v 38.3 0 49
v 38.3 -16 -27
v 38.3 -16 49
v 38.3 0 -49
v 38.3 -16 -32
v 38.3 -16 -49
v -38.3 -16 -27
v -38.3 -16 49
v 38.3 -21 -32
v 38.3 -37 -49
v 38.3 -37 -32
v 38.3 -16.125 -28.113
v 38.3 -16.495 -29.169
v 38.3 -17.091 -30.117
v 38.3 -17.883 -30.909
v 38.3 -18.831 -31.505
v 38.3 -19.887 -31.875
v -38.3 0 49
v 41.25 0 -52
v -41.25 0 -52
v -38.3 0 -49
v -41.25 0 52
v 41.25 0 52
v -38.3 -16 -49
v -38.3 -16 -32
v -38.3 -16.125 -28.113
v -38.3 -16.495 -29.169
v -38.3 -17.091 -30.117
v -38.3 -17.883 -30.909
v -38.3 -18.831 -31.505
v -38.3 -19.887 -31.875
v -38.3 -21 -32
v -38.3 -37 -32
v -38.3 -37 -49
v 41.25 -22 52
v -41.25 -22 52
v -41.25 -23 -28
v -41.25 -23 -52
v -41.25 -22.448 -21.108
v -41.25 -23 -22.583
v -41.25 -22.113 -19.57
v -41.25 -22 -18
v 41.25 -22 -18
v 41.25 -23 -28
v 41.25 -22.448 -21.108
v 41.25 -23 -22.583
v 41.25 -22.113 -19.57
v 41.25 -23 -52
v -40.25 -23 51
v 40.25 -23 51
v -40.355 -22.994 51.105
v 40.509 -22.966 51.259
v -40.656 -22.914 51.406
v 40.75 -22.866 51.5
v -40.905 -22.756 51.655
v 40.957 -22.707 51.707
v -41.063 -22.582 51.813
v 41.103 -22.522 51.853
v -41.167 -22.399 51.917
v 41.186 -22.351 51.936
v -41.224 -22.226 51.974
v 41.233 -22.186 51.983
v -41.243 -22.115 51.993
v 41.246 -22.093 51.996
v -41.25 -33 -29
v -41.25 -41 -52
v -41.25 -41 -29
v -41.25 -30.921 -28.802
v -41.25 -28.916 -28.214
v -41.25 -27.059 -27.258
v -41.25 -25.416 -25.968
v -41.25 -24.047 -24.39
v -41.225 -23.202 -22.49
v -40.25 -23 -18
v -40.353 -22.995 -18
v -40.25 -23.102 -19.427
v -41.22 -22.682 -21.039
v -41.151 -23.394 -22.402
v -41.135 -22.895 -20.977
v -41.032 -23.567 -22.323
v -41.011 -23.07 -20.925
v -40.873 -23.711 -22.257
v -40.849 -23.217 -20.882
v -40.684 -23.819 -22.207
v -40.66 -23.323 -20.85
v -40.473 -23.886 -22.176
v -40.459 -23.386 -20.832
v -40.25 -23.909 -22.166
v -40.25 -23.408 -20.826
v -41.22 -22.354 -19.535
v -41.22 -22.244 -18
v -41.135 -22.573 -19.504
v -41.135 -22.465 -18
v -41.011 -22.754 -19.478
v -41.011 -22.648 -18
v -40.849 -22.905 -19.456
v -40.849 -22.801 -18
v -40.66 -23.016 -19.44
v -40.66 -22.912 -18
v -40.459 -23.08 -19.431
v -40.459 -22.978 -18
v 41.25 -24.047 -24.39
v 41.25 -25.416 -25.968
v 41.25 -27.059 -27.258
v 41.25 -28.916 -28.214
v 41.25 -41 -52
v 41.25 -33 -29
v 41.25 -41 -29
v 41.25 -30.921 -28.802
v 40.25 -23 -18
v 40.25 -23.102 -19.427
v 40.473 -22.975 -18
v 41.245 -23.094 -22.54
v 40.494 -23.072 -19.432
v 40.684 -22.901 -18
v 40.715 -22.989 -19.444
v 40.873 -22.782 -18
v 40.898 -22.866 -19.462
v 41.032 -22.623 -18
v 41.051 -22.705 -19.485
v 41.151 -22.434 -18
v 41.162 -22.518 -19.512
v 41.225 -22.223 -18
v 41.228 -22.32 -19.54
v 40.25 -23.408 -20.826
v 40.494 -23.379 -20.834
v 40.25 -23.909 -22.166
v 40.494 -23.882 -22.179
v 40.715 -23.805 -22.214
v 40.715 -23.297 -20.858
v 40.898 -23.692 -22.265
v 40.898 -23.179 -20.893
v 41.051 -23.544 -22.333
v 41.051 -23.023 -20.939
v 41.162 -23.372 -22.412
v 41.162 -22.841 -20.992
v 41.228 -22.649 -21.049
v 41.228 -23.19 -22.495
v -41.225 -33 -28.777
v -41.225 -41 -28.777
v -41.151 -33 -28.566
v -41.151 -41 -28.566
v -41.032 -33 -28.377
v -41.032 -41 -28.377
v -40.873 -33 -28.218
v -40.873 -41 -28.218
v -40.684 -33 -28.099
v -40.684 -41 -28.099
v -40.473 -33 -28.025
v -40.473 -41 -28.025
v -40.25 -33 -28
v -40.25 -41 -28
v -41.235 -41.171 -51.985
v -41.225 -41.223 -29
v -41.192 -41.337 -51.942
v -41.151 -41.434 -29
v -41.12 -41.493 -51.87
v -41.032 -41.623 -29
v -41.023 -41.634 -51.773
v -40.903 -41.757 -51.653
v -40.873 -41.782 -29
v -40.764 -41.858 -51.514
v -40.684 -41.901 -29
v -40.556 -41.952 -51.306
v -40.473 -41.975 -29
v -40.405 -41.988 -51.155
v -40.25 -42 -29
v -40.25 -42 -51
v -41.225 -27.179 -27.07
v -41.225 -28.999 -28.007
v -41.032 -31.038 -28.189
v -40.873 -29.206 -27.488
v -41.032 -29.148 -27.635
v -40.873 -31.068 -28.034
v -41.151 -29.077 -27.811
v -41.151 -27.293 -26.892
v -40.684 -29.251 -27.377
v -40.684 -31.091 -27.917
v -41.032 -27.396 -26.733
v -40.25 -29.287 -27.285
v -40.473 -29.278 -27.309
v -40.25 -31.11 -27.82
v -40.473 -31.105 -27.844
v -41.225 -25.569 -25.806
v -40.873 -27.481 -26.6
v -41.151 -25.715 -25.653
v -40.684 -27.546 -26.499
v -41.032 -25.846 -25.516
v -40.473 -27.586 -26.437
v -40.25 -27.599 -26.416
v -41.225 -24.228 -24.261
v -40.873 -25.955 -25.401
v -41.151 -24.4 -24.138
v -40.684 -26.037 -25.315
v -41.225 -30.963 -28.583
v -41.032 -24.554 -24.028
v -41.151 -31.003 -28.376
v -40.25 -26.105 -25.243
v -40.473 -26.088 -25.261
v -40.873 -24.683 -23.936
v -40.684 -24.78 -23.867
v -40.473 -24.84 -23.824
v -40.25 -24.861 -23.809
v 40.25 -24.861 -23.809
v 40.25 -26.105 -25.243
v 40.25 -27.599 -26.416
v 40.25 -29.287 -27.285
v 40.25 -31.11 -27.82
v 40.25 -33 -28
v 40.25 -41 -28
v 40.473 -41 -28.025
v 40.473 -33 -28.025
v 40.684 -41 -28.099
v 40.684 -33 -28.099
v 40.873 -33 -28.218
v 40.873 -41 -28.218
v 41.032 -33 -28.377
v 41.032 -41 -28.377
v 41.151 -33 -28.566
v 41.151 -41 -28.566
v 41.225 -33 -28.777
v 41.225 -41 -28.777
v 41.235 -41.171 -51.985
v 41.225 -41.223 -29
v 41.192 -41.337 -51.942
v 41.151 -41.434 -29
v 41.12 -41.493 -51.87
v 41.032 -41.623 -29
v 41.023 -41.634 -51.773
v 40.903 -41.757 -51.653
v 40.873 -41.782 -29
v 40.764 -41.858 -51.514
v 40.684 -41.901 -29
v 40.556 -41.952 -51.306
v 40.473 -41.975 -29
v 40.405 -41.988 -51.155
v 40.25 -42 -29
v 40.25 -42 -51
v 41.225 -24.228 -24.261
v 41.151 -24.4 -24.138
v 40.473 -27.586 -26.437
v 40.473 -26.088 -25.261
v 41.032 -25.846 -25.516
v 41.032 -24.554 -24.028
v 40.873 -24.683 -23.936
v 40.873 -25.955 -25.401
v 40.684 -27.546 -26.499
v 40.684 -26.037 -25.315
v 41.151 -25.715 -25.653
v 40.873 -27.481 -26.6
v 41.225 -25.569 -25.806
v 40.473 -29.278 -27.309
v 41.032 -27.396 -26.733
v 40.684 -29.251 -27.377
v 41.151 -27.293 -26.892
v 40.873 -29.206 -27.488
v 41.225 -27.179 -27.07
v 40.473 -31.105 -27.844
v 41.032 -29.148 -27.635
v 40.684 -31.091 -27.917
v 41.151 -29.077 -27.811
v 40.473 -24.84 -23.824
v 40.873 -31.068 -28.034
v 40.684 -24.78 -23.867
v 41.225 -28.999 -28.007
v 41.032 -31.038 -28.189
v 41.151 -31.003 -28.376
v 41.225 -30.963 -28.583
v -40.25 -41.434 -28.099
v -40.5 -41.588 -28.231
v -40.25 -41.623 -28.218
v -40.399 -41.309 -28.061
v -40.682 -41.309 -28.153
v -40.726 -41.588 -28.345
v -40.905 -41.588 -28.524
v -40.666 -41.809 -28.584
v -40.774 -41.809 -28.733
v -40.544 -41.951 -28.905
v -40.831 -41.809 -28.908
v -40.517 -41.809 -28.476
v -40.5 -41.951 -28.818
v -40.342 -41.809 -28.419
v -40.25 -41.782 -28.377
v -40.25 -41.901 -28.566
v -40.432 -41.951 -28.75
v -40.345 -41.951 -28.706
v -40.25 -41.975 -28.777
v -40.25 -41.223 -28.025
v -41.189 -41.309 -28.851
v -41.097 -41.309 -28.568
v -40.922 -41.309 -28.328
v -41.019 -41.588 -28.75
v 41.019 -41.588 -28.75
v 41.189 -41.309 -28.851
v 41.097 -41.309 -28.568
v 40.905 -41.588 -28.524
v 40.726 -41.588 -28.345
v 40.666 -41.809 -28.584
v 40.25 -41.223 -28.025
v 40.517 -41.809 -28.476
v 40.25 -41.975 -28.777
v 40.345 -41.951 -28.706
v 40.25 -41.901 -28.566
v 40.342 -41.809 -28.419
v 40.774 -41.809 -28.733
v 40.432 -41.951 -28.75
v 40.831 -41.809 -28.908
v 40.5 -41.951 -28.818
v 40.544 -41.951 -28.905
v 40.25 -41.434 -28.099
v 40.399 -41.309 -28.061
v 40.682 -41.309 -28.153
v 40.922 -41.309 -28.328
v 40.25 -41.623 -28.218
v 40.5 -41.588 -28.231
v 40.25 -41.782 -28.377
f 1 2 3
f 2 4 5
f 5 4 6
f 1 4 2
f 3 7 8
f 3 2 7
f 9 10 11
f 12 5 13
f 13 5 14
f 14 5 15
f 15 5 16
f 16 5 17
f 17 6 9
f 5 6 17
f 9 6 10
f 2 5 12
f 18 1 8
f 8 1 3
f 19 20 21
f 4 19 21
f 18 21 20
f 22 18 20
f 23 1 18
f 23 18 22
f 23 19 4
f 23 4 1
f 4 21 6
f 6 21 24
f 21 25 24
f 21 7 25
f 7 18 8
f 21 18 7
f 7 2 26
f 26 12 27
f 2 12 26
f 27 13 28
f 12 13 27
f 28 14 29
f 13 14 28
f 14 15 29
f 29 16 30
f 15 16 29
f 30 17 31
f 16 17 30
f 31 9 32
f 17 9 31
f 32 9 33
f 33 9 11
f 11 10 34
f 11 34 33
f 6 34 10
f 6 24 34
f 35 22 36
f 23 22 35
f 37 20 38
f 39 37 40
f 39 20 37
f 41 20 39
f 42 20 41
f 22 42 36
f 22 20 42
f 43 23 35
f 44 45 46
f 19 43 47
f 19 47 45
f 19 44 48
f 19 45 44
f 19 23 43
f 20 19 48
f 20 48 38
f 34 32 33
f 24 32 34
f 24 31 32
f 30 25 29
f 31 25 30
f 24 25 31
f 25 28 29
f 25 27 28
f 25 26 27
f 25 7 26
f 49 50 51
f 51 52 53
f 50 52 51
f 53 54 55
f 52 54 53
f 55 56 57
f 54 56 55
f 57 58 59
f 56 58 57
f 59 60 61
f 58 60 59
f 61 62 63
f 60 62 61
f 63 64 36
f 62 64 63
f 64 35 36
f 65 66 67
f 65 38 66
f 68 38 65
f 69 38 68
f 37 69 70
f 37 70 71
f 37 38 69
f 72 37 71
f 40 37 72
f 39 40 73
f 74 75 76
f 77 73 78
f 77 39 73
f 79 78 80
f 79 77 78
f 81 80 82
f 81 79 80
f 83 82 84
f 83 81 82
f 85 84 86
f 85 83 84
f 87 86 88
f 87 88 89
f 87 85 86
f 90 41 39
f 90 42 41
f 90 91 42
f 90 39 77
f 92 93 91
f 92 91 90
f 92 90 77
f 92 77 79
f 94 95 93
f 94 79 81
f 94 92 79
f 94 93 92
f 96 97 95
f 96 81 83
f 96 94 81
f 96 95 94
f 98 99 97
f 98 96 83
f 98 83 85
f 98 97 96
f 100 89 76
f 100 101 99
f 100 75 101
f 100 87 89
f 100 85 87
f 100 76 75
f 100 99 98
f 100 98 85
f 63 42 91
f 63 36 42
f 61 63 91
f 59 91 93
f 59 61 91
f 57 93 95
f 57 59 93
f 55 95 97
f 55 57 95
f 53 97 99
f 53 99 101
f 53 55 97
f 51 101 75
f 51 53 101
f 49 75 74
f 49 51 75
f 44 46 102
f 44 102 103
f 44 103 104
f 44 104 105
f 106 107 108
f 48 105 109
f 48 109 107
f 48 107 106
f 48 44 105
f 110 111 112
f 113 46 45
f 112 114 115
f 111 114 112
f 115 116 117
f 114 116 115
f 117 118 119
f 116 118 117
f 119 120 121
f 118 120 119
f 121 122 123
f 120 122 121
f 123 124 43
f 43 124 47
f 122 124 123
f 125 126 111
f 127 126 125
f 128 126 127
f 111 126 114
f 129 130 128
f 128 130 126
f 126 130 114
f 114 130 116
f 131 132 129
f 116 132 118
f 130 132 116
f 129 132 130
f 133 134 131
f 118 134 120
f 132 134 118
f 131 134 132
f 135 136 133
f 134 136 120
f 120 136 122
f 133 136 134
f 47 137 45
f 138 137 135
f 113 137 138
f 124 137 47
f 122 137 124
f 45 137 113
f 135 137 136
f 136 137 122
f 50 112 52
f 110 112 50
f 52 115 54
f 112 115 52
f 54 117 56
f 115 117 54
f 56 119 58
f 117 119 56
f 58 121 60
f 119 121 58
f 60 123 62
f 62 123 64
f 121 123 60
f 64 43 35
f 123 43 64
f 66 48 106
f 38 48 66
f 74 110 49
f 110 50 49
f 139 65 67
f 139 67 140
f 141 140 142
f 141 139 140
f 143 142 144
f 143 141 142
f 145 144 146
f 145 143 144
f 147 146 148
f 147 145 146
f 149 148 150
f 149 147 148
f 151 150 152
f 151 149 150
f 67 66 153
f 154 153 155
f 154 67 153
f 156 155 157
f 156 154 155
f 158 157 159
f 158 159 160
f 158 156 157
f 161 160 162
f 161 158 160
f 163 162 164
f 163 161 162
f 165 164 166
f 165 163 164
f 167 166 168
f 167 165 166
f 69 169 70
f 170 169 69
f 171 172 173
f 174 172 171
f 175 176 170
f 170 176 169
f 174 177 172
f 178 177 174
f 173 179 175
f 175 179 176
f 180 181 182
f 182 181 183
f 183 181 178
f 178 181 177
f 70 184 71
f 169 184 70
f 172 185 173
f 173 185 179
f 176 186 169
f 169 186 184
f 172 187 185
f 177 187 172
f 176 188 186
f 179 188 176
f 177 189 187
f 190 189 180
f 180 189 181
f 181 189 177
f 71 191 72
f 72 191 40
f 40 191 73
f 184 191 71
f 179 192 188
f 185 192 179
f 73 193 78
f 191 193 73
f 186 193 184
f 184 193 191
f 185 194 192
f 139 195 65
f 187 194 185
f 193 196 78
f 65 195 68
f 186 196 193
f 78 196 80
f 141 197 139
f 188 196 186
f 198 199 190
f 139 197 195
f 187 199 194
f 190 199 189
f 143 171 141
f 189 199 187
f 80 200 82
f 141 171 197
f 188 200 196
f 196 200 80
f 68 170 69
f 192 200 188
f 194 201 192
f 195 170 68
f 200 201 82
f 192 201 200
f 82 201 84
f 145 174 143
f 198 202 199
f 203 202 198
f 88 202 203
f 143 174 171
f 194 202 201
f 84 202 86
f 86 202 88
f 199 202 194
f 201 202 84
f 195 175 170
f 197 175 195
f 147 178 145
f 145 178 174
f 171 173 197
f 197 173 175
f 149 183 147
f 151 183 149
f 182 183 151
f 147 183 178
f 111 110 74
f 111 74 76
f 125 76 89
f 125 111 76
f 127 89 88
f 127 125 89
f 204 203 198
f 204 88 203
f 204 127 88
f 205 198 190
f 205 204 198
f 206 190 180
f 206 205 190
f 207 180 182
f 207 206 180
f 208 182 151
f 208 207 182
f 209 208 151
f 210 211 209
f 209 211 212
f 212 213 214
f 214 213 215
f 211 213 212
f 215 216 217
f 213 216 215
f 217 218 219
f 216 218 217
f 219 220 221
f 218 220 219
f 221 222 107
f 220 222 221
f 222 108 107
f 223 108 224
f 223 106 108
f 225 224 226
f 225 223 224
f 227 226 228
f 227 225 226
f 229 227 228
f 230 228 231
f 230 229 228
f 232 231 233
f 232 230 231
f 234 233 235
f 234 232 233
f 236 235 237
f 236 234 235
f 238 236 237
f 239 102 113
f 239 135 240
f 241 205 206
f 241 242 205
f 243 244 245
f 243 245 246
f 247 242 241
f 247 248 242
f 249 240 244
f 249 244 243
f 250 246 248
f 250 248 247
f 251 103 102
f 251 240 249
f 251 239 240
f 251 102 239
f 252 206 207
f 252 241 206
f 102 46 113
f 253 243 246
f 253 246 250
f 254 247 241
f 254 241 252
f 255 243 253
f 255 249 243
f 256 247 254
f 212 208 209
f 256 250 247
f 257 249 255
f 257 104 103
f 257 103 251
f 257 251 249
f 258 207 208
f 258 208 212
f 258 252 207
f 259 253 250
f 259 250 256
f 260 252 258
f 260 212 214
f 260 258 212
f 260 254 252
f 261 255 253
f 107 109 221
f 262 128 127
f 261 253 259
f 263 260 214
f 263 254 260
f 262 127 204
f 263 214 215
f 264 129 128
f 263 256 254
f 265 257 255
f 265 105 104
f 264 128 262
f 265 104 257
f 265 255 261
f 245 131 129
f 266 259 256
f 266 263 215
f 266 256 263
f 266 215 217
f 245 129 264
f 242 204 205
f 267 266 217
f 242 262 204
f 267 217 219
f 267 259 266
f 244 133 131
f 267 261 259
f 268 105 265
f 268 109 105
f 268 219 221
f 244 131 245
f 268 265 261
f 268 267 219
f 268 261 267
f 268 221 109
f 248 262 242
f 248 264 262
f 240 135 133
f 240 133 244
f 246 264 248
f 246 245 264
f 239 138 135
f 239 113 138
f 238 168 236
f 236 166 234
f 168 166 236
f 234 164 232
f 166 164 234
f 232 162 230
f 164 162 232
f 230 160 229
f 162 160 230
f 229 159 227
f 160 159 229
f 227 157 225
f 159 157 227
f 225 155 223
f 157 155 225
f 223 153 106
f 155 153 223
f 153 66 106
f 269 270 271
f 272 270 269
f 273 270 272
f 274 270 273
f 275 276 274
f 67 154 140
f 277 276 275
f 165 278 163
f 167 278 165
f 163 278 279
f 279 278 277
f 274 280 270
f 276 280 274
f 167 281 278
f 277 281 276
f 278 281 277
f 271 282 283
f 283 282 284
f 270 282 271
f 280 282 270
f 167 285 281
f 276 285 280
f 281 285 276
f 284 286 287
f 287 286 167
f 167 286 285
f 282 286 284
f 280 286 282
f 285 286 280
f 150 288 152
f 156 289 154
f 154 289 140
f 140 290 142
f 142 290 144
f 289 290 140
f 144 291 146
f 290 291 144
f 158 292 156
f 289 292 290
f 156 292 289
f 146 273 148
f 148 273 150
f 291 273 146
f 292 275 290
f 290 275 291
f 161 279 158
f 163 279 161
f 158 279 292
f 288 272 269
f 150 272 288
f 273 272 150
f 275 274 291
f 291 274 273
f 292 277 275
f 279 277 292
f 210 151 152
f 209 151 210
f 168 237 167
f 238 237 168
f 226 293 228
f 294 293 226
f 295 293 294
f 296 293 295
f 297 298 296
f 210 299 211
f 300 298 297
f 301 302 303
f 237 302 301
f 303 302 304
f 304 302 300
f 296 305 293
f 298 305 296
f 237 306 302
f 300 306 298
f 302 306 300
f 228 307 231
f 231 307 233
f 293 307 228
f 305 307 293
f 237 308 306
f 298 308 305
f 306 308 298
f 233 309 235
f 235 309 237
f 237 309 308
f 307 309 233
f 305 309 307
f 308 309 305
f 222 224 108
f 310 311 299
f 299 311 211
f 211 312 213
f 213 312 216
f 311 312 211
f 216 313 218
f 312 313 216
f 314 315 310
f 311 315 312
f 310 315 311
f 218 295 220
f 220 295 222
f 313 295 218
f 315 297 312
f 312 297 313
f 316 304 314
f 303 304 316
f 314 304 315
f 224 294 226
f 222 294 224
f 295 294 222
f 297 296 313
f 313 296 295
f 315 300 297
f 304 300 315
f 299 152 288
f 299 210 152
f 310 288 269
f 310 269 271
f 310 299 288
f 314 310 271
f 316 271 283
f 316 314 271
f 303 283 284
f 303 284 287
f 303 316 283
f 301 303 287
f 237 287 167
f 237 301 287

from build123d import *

# Parameters (mm, degrees)
SKETCH_W        = 82.5
SKETCH_H        = 104
PAD_DEPTH       = 23
SKETCH001_W     = 76.6
SKETCH001_H     = 98
POCKET_DEPTH    = 16
SKETCH002_W     = 82.5
SKETCH002_H     = 24
PAD001_DEPTH    = 19
FILLET_R        = 10
FILLET001_R     = 1
FILLET002_R     = 1
SKETCH003_W     = 76.6
SKETCH003_H     = 17
POCKET001_DEPTH = 21
FILLET003_R     = 5


with BuildPart() as part:
    # Sketch → Pad (new body)
    with BuildSketch(Plane.XZ):
        Rectangle(SKETCH_W, SKETCH_H)
    extrude(amount=PAD_DEPTH)

    # Sketch001 → Pocket (cut)
    with BuildSketch(Plane.XZ):
        Rectangle(SKETCH001_W, SKETCH001_H)
    extrude(amount=POCKET_DEPTH, mode=Mode.SUBTRACT)

    # Sketch002 → Pad001 (join)
    with BuildSketch(Plane(origin=(0, -23, 1), x_dir=(1, 0, 0), z_dir=(0, -1, 0))):
        with Locations((0, -41)):
            Rectangle(SKETCH002_W, SKETCH002_H)
    extrude(amount=PAD001_DEPTH)

    # Fillet
    fillet_edges = [part.edges().sort_by_distance(p)[0] for p in [
        (0, -23, -28),
    ]]
    fillet(fillet_edges, radius=FILLET_R)

    # Fillet001
    fillet001_edges = [part.edges().sort_by_distance(p)[0] for p in [
        (41.25, -23, 17),
        (0, -23, 52),
        (-41.25, -23, 17),
    ]]
    fillet(fillet001_edges, radius=FILLET001_R)

    # Fillet002
    fillet002_edges = [part.edges().sort_by_distance(p)[0] for p in [
        (0, -42, -28),
        (-40.957107, -42, -28.292893),
        (40.957107, -42, -28.292893),
        (-41.25, -42, -40.5),
        (41.25, -42, -40.5),
        (0, -42, -52),
    ]]
    fillet(fillet002_edges, radius=FILLET002_R)

    # Sketch003 → Pocket001 (cut)
    with BuildSketch(Plane.XZ.offset(16)):
        with Locations((0, -40.5)):
            Rectangle(SKETCH003_W, SKETCH003_H)
    extrude(amount=POCKET001_DEPTH, mode=Mode.SUBTRACT)

    # Fillet003
    fillet003_edges = [part.edges().sort_by_distance(p)[0] for p in [
        (0, -16, -32),
    ]]
    fillet(fillet003_edges, radius=FILLET003_R)


solid = part.part
